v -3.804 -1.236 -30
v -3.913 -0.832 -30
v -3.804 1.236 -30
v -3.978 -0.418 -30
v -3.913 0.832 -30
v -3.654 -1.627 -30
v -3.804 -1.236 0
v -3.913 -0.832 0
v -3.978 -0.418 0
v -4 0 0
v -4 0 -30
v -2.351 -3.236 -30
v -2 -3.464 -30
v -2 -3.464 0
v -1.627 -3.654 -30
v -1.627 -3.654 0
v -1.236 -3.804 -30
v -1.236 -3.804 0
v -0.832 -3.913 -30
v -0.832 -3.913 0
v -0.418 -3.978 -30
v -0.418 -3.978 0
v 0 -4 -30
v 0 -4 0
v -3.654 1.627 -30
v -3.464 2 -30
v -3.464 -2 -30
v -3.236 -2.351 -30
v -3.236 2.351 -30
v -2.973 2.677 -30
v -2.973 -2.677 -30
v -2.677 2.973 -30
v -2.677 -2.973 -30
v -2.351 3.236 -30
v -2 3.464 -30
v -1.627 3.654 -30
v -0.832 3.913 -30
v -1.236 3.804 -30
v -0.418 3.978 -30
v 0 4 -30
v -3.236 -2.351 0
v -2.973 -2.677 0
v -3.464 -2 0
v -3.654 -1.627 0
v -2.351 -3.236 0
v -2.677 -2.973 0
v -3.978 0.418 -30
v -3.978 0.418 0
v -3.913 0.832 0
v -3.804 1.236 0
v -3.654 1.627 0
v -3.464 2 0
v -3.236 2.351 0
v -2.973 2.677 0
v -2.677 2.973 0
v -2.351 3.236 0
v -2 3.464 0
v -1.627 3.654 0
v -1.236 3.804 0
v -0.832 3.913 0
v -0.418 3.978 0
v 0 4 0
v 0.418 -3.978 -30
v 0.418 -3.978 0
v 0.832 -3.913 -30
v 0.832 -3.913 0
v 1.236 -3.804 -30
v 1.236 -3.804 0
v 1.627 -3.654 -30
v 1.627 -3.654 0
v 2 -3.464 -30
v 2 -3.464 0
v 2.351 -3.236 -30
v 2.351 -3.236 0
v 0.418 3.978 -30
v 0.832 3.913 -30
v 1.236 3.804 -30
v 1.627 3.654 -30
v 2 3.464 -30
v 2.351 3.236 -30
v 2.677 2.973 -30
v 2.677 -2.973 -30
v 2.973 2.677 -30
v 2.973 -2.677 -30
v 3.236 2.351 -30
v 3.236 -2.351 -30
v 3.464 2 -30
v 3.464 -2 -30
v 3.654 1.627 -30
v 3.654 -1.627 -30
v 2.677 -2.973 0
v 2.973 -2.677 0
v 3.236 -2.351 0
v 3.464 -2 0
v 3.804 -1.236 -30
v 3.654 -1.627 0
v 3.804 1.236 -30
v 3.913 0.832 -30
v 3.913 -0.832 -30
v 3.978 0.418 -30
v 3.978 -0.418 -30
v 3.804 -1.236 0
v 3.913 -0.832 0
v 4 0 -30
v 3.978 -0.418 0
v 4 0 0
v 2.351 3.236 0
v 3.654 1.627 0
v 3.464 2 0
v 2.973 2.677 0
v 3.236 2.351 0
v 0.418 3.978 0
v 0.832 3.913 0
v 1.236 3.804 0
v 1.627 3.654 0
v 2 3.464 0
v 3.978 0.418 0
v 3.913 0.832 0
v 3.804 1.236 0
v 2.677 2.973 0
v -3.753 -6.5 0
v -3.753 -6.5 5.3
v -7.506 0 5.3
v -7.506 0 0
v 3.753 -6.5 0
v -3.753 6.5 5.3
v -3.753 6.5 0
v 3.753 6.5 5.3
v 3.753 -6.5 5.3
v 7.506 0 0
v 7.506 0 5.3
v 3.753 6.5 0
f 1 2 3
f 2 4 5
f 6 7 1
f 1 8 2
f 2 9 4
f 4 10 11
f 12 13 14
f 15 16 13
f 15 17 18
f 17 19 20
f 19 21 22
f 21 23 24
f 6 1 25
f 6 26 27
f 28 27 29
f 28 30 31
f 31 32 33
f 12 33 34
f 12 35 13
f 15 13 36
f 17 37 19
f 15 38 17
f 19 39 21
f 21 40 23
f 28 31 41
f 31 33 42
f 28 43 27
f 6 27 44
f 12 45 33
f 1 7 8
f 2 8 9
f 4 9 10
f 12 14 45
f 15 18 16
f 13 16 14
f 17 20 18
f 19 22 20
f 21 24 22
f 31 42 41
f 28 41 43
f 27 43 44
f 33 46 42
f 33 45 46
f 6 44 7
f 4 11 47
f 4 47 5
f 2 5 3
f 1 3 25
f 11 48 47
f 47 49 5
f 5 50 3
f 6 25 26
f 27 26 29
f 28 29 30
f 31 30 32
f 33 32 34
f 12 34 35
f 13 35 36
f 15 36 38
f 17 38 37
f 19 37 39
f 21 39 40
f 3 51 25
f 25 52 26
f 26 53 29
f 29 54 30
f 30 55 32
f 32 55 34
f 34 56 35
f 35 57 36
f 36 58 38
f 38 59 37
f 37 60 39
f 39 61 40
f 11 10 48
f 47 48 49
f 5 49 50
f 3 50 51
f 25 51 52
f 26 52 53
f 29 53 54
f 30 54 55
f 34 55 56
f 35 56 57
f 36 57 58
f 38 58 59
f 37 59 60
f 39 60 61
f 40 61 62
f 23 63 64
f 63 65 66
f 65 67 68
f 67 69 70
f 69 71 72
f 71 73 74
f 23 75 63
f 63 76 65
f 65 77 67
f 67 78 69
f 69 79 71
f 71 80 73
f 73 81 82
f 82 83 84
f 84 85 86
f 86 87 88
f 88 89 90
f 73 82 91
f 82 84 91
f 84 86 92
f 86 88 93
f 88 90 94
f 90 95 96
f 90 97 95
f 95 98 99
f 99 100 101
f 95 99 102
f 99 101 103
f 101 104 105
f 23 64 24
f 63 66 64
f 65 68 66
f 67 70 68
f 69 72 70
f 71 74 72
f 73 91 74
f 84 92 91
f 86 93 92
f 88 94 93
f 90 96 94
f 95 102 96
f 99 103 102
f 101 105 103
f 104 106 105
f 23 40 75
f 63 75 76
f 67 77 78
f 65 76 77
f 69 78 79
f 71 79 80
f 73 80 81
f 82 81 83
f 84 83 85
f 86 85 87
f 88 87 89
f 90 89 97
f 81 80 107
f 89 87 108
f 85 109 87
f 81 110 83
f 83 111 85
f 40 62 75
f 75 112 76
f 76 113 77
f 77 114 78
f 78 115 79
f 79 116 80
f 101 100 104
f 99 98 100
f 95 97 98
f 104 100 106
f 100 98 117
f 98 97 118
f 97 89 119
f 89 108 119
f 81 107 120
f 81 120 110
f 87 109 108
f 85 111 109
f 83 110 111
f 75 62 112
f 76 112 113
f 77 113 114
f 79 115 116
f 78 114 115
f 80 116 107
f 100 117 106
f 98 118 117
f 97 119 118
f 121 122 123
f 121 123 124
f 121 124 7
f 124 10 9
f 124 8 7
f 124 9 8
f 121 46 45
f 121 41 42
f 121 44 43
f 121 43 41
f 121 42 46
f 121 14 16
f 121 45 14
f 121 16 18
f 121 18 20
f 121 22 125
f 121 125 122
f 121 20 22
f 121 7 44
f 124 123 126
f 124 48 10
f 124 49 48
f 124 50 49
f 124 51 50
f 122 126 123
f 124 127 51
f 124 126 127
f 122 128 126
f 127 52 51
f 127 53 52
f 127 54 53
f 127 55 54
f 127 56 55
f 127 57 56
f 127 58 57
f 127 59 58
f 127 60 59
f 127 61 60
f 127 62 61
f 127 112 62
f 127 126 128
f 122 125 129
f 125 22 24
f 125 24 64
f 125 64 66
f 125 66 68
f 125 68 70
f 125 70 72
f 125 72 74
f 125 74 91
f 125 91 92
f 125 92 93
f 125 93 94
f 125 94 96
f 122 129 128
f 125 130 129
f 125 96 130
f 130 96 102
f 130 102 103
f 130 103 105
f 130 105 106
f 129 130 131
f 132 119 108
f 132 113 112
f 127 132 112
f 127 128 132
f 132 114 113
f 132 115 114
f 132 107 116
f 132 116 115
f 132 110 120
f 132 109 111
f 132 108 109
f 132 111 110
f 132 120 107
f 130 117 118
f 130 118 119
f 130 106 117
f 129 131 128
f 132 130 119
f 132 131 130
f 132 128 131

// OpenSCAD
$fn = 60;

// シャンク（軸部）: 直径 8mm、長さ 30mm、z < 0 側へ
translate([0, 0, -30])
    cylinder(h = 30, d = 8);

// 頭部: 対辺距離 13mm、高さ 5.3mm、z >= 0 側へ
linear_extrude(height = 5.3)
    circle(r = (13 / 2) / cos(30), $fn = 6);
